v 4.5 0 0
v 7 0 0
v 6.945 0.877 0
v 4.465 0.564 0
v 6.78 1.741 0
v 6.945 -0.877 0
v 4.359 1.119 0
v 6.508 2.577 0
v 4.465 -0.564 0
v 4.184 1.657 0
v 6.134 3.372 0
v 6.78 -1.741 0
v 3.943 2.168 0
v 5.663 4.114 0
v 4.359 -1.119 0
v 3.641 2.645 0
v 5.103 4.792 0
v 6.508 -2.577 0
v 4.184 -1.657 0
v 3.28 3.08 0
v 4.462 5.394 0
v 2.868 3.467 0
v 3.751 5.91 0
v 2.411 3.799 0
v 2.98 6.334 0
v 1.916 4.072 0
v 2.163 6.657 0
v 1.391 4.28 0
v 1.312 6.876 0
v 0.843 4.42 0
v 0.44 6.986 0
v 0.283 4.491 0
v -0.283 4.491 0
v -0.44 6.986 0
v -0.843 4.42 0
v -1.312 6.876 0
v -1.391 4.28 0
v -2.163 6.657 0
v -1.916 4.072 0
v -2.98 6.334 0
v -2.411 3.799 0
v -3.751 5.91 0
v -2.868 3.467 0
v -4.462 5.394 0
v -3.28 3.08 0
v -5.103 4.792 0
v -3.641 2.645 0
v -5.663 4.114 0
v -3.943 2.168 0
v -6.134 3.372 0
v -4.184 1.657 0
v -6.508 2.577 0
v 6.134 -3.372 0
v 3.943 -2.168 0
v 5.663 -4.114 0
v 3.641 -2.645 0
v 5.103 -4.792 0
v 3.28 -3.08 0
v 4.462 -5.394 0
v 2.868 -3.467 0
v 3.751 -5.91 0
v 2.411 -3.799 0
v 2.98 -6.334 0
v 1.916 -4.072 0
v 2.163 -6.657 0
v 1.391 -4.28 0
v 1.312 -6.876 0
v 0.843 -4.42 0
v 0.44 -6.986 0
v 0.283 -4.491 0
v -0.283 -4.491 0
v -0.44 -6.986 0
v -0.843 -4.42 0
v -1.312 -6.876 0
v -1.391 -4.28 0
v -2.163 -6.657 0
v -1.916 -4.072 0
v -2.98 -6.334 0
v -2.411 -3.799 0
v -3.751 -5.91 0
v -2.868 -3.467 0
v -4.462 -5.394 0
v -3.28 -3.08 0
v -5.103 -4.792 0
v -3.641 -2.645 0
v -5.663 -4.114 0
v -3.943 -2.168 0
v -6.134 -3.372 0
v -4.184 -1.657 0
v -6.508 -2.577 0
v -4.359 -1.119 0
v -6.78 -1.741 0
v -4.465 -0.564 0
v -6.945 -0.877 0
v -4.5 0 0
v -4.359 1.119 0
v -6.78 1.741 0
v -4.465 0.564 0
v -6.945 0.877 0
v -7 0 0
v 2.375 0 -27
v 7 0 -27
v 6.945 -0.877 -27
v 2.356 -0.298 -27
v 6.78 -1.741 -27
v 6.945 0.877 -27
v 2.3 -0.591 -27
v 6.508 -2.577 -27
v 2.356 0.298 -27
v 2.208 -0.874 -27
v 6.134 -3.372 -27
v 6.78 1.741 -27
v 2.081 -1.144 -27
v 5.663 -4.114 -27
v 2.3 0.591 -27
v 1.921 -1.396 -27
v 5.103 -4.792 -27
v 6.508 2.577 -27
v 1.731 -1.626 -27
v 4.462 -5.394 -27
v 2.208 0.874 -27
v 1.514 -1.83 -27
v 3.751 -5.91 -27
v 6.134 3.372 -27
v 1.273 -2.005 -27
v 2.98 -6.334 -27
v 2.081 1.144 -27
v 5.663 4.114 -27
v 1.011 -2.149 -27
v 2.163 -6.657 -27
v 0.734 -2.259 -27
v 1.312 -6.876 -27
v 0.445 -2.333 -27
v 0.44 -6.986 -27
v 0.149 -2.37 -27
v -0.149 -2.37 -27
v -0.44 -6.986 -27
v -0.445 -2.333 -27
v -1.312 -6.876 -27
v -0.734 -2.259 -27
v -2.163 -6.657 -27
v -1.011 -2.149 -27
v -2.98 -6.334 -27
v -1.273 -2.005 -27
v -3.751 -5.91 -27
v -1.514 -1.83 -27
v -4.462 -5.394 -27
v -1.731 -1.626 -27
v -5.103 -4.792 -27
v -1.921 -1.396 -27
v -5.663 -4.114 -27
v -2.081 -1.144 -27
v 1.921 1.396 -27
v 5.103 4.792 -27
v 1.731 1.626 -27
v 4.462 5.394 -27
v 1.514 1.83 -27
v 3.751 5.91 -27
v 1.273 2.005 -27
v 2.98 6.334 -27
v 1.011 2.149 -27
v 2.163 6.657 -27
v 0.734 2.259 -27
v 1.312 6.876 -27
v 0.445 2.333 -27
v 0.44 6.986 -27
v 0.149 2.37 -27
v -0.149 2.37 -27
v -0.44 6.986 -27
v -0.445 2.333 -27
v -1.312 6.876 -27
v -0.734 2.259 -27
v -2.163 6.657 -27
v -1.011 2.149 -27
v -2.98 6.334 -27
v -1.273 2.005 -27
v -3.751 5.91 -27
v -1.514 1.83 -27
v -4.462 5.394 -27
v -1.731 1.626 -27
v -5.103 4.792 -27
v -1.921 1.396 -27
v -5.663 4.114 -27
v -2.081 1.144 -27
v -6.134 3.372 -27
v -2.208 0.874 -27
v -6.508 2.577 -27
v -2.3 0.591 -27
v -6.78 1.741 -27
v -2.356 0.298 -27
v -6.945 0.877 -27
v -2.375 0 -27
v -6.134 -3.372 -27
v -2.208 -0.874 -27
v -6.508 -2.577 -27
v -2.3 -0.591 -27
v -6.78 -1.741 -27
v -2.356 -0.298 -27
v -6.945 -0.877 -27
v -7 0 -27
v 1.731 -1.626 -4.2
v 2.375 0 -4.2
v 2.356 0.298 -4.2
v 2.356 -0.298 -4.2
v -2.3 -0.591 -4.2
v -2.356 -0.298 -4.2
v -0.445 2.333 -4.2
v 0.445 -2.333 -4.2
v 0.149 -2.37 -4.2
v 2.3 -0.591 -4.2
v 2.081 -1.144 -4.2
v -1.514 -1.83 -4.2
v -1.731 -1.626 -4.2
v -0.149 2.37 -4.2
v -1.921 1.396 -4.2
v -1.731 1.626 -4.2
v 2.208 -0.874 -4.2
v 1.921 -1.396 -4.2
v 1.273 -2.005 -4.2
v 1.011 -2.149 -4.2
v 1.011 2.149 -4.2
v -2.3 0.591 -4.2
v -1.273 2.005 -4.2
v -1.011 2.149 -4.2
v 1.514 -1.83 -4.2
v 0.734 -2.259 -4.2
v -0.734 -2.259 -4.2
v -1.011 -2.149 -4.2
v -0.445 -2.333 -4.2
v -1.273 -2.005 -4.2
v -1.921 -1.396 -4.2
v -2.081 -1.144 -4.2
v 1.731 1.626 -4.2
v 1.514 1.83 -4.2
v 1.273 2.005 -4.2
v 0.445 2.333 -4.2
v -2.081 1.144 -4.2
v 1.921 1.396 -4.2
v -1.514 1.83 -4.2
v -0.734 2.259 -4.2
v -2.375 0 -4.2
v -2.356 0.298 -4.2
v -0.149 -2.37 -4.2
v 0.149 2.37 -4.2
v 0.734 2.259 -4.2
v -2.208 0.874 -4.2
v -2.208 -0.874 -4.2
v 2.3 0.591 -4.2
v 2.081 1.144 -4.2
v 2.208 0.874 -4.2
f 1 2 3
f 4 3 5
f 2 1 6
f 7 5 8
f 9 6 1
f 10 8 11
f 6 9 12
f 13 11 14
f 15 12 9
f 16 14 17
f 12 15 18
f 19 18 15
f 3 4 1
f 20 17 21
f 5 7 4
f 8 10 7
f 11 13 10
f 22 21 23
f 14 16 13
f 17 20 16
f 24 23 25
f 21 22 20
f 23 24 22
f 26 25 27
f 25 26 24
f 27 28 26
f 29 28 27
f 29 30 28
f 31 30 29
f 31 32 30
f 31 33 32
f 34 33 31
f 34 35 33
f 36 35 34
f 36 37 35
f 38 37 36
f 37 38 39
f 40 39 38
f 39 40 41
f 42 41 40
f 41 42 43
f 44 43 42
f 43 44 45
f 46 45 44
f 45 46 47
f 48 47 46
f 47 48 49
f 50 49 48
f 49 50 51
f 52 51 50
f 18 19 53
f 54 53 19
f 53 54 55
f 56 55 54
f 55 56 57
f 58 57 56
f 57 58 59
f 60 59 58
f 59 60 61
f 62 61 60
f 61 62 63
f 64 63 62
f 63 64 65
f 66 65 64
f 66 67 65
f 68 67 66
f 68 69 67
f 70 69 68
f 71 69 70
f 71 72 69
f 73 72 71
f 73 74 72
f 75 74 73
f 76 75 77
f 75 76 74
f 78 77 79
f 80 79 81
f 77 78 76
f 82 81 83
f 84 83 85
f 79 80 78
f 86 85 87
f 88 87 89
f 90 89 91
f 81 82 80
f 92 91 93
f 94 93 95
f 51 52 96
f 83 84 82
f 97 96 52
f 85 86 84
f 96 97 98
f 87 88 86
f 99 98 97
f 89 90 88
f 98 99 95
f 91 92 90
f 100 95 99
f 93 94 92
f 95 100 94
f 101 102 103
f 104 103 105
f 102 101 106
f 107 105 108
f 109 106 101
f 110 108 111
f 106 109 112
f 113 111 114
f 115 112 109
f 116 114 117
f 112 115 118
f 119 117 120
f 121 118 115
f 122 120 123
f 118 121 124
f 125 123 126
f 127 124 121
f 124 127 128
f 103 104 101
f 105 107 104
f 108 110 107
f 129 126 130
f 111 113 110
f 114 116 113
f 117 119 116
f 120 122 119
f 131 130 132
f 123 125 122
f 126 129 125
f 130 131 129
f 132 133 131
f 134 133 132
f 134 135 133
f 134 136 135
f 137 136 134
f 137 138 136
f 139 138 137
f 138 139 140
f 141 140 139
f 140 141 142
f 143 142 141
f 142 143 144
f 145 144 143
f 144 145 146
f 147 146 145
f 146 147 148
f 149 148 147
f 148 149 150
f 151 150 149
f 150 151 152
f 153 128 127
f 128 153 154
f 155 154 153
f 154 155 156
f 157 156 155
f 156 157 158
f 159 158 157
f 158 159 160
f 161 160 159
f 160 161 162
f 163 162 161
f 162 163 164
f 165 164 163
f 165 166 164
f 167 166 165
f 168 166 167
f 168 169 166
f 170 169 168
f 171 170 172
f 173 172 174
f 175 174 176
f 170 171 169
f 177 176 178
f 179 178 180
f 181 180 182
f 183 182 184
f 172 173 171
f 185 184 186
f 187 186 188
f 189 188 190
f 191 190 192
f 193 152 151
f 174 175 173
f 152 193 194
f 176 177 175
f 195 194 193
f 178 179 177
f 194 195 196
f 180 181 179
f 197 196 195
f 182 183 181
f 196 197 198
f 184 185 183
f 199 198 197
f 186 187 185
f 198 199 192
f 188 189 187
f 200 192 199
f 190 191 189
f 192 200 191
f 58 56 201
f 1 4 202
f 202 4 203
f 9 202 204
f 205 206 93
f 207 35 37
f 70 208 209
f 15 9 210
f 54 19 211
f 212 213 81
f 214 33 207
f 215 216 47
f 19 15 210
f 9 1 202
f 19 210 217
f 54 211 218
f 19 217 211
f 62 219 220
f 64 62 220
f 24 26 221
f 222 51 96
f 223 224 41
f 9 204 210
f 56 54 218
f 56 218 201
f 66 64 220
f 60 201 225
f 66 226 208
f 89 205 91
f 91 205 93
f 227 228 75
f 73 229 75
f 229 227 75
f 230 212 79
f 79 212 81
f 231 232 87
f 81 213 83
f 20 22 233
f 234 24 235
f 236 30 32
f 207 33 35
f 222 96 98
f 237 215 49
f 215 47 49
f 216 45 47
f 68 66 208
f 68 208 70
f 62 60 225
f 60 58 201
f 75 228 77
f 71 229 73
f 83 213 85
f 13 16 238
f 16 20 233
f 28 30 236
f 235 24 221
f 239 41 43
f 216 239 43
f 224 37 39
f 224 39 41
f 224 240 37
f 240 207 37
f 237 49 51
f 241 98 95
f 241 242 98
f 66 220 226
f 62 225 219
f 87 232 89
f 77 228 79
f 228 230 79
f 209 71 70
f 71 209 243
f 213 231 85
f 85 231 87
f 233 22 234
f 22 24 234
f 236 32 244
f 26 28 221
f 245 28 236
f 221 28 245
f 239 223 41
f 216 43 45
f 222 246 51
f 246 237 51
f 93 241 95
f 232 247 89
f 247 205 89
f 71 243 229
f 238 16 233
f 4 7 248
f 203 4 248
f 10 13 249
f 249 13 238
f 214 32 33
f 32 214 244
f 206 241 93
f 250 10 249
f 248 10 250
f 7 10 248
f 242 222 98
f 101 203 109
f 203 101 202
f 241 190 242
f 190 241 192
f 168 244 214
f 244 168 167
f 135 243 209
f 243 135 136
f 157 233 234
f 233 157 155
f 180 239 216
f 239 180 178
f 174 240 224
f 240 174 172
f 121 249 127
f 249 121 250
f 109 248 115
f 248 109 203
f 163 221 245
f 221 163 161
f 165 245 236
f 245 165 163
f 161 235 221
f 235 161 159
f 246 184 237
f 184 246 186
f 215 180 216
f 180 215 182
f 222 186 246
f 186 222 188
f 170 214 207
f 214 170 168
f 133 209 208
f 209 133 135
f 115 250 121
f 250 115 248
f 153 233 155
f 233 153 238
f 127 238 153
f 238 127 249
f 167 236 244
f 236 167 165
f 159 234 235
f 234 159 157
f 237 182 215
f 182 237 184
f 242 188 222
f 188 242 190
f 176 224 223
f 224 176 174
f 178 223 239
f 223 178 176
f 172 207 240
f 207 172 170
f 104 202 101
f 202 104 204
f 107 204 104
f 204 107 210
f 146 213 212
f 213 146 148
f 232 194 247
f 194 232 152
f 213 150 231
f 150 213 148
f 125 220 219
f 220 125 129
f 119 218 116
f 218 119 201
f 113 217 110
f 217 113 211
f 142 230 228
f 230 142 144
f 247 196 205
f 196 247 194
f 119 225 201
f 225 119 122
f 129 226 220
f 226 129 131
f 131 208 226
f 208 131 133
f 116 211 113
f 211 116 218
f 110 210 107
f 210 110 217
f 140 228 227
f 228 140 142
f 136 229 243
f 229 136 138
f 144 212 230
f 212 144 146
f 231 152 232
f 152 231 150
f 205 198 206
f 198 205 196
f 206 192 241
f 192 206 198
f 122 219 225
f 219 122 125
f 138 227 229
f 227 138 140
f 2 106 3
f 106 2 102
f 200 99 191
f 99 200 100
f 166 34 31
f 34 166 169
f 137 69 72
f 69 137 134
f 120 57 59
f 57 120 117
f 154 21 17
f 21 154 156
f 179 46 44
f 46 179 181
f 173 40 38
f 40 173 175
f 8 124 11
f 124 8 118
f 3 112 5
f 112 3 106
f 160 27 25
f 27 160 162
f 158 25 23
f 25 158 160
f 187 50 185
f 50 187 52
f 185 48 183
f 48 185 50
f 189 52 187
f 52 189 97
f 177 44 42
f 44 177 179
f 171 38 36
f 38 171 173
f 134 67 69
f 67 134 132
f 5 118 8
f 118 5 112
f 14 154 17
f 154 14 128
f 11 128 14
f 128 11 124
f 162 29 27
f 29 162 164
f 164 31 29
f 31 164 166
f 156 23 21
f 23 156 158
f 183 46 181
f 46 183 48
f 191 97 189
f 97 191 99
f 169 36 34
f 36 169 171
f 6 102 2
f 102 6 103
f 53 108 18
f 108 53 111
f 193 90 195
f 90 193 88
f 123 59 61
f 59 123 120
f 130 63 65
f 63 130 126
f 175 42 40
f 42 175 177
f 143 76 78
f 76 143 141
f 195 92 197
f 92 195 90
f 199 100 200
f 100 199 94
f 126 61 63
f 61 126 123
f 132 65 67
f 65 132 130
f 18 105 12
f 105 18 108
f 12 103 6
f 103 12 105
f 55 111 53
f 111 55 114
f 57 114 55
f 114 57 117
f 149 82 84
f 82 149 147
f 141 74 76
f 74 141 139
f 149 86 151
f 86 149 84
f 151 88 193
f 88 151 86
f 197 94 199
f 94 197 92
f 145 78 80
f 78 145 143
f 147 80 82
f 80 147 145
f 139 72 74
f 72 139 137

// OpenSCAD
$fn = 50;


difference() {
	union() {
		translate(v = [0, 0, -27.0000000000]) {
			cylinder(h = 27, r = 7.0000000000);
		}
		cylinder(h = 0, r = 16.0000000000);
	}
	union() {
		translate(v = [0, 0, 0]) {
			rotate(a = [0, 0, 0]) {
				difference() {
					union() {
						#translate(v = [0, 0, -27.0000000000]) {
							cylinder(h = 27, r = 2.2500000000);
						}
						#translate(v = [0, 0, -4.2000000000]) {
							cylinder(h = 4.2000000000, r = 7.0000000000, r1 = 2.3750000000, r2 = 4.5000000000);
						}
						#translate(v = [0, 0, -27.0000000000]) {
							cylinder(h = 27, r = 2.3750000000);
						}
						#translate(v = [0, 0, -27.0000000000]) {
							cylinder(h = 27, r = 2.2500000000);
						}
					}
					union();
				}
			}
		}
	}
}
